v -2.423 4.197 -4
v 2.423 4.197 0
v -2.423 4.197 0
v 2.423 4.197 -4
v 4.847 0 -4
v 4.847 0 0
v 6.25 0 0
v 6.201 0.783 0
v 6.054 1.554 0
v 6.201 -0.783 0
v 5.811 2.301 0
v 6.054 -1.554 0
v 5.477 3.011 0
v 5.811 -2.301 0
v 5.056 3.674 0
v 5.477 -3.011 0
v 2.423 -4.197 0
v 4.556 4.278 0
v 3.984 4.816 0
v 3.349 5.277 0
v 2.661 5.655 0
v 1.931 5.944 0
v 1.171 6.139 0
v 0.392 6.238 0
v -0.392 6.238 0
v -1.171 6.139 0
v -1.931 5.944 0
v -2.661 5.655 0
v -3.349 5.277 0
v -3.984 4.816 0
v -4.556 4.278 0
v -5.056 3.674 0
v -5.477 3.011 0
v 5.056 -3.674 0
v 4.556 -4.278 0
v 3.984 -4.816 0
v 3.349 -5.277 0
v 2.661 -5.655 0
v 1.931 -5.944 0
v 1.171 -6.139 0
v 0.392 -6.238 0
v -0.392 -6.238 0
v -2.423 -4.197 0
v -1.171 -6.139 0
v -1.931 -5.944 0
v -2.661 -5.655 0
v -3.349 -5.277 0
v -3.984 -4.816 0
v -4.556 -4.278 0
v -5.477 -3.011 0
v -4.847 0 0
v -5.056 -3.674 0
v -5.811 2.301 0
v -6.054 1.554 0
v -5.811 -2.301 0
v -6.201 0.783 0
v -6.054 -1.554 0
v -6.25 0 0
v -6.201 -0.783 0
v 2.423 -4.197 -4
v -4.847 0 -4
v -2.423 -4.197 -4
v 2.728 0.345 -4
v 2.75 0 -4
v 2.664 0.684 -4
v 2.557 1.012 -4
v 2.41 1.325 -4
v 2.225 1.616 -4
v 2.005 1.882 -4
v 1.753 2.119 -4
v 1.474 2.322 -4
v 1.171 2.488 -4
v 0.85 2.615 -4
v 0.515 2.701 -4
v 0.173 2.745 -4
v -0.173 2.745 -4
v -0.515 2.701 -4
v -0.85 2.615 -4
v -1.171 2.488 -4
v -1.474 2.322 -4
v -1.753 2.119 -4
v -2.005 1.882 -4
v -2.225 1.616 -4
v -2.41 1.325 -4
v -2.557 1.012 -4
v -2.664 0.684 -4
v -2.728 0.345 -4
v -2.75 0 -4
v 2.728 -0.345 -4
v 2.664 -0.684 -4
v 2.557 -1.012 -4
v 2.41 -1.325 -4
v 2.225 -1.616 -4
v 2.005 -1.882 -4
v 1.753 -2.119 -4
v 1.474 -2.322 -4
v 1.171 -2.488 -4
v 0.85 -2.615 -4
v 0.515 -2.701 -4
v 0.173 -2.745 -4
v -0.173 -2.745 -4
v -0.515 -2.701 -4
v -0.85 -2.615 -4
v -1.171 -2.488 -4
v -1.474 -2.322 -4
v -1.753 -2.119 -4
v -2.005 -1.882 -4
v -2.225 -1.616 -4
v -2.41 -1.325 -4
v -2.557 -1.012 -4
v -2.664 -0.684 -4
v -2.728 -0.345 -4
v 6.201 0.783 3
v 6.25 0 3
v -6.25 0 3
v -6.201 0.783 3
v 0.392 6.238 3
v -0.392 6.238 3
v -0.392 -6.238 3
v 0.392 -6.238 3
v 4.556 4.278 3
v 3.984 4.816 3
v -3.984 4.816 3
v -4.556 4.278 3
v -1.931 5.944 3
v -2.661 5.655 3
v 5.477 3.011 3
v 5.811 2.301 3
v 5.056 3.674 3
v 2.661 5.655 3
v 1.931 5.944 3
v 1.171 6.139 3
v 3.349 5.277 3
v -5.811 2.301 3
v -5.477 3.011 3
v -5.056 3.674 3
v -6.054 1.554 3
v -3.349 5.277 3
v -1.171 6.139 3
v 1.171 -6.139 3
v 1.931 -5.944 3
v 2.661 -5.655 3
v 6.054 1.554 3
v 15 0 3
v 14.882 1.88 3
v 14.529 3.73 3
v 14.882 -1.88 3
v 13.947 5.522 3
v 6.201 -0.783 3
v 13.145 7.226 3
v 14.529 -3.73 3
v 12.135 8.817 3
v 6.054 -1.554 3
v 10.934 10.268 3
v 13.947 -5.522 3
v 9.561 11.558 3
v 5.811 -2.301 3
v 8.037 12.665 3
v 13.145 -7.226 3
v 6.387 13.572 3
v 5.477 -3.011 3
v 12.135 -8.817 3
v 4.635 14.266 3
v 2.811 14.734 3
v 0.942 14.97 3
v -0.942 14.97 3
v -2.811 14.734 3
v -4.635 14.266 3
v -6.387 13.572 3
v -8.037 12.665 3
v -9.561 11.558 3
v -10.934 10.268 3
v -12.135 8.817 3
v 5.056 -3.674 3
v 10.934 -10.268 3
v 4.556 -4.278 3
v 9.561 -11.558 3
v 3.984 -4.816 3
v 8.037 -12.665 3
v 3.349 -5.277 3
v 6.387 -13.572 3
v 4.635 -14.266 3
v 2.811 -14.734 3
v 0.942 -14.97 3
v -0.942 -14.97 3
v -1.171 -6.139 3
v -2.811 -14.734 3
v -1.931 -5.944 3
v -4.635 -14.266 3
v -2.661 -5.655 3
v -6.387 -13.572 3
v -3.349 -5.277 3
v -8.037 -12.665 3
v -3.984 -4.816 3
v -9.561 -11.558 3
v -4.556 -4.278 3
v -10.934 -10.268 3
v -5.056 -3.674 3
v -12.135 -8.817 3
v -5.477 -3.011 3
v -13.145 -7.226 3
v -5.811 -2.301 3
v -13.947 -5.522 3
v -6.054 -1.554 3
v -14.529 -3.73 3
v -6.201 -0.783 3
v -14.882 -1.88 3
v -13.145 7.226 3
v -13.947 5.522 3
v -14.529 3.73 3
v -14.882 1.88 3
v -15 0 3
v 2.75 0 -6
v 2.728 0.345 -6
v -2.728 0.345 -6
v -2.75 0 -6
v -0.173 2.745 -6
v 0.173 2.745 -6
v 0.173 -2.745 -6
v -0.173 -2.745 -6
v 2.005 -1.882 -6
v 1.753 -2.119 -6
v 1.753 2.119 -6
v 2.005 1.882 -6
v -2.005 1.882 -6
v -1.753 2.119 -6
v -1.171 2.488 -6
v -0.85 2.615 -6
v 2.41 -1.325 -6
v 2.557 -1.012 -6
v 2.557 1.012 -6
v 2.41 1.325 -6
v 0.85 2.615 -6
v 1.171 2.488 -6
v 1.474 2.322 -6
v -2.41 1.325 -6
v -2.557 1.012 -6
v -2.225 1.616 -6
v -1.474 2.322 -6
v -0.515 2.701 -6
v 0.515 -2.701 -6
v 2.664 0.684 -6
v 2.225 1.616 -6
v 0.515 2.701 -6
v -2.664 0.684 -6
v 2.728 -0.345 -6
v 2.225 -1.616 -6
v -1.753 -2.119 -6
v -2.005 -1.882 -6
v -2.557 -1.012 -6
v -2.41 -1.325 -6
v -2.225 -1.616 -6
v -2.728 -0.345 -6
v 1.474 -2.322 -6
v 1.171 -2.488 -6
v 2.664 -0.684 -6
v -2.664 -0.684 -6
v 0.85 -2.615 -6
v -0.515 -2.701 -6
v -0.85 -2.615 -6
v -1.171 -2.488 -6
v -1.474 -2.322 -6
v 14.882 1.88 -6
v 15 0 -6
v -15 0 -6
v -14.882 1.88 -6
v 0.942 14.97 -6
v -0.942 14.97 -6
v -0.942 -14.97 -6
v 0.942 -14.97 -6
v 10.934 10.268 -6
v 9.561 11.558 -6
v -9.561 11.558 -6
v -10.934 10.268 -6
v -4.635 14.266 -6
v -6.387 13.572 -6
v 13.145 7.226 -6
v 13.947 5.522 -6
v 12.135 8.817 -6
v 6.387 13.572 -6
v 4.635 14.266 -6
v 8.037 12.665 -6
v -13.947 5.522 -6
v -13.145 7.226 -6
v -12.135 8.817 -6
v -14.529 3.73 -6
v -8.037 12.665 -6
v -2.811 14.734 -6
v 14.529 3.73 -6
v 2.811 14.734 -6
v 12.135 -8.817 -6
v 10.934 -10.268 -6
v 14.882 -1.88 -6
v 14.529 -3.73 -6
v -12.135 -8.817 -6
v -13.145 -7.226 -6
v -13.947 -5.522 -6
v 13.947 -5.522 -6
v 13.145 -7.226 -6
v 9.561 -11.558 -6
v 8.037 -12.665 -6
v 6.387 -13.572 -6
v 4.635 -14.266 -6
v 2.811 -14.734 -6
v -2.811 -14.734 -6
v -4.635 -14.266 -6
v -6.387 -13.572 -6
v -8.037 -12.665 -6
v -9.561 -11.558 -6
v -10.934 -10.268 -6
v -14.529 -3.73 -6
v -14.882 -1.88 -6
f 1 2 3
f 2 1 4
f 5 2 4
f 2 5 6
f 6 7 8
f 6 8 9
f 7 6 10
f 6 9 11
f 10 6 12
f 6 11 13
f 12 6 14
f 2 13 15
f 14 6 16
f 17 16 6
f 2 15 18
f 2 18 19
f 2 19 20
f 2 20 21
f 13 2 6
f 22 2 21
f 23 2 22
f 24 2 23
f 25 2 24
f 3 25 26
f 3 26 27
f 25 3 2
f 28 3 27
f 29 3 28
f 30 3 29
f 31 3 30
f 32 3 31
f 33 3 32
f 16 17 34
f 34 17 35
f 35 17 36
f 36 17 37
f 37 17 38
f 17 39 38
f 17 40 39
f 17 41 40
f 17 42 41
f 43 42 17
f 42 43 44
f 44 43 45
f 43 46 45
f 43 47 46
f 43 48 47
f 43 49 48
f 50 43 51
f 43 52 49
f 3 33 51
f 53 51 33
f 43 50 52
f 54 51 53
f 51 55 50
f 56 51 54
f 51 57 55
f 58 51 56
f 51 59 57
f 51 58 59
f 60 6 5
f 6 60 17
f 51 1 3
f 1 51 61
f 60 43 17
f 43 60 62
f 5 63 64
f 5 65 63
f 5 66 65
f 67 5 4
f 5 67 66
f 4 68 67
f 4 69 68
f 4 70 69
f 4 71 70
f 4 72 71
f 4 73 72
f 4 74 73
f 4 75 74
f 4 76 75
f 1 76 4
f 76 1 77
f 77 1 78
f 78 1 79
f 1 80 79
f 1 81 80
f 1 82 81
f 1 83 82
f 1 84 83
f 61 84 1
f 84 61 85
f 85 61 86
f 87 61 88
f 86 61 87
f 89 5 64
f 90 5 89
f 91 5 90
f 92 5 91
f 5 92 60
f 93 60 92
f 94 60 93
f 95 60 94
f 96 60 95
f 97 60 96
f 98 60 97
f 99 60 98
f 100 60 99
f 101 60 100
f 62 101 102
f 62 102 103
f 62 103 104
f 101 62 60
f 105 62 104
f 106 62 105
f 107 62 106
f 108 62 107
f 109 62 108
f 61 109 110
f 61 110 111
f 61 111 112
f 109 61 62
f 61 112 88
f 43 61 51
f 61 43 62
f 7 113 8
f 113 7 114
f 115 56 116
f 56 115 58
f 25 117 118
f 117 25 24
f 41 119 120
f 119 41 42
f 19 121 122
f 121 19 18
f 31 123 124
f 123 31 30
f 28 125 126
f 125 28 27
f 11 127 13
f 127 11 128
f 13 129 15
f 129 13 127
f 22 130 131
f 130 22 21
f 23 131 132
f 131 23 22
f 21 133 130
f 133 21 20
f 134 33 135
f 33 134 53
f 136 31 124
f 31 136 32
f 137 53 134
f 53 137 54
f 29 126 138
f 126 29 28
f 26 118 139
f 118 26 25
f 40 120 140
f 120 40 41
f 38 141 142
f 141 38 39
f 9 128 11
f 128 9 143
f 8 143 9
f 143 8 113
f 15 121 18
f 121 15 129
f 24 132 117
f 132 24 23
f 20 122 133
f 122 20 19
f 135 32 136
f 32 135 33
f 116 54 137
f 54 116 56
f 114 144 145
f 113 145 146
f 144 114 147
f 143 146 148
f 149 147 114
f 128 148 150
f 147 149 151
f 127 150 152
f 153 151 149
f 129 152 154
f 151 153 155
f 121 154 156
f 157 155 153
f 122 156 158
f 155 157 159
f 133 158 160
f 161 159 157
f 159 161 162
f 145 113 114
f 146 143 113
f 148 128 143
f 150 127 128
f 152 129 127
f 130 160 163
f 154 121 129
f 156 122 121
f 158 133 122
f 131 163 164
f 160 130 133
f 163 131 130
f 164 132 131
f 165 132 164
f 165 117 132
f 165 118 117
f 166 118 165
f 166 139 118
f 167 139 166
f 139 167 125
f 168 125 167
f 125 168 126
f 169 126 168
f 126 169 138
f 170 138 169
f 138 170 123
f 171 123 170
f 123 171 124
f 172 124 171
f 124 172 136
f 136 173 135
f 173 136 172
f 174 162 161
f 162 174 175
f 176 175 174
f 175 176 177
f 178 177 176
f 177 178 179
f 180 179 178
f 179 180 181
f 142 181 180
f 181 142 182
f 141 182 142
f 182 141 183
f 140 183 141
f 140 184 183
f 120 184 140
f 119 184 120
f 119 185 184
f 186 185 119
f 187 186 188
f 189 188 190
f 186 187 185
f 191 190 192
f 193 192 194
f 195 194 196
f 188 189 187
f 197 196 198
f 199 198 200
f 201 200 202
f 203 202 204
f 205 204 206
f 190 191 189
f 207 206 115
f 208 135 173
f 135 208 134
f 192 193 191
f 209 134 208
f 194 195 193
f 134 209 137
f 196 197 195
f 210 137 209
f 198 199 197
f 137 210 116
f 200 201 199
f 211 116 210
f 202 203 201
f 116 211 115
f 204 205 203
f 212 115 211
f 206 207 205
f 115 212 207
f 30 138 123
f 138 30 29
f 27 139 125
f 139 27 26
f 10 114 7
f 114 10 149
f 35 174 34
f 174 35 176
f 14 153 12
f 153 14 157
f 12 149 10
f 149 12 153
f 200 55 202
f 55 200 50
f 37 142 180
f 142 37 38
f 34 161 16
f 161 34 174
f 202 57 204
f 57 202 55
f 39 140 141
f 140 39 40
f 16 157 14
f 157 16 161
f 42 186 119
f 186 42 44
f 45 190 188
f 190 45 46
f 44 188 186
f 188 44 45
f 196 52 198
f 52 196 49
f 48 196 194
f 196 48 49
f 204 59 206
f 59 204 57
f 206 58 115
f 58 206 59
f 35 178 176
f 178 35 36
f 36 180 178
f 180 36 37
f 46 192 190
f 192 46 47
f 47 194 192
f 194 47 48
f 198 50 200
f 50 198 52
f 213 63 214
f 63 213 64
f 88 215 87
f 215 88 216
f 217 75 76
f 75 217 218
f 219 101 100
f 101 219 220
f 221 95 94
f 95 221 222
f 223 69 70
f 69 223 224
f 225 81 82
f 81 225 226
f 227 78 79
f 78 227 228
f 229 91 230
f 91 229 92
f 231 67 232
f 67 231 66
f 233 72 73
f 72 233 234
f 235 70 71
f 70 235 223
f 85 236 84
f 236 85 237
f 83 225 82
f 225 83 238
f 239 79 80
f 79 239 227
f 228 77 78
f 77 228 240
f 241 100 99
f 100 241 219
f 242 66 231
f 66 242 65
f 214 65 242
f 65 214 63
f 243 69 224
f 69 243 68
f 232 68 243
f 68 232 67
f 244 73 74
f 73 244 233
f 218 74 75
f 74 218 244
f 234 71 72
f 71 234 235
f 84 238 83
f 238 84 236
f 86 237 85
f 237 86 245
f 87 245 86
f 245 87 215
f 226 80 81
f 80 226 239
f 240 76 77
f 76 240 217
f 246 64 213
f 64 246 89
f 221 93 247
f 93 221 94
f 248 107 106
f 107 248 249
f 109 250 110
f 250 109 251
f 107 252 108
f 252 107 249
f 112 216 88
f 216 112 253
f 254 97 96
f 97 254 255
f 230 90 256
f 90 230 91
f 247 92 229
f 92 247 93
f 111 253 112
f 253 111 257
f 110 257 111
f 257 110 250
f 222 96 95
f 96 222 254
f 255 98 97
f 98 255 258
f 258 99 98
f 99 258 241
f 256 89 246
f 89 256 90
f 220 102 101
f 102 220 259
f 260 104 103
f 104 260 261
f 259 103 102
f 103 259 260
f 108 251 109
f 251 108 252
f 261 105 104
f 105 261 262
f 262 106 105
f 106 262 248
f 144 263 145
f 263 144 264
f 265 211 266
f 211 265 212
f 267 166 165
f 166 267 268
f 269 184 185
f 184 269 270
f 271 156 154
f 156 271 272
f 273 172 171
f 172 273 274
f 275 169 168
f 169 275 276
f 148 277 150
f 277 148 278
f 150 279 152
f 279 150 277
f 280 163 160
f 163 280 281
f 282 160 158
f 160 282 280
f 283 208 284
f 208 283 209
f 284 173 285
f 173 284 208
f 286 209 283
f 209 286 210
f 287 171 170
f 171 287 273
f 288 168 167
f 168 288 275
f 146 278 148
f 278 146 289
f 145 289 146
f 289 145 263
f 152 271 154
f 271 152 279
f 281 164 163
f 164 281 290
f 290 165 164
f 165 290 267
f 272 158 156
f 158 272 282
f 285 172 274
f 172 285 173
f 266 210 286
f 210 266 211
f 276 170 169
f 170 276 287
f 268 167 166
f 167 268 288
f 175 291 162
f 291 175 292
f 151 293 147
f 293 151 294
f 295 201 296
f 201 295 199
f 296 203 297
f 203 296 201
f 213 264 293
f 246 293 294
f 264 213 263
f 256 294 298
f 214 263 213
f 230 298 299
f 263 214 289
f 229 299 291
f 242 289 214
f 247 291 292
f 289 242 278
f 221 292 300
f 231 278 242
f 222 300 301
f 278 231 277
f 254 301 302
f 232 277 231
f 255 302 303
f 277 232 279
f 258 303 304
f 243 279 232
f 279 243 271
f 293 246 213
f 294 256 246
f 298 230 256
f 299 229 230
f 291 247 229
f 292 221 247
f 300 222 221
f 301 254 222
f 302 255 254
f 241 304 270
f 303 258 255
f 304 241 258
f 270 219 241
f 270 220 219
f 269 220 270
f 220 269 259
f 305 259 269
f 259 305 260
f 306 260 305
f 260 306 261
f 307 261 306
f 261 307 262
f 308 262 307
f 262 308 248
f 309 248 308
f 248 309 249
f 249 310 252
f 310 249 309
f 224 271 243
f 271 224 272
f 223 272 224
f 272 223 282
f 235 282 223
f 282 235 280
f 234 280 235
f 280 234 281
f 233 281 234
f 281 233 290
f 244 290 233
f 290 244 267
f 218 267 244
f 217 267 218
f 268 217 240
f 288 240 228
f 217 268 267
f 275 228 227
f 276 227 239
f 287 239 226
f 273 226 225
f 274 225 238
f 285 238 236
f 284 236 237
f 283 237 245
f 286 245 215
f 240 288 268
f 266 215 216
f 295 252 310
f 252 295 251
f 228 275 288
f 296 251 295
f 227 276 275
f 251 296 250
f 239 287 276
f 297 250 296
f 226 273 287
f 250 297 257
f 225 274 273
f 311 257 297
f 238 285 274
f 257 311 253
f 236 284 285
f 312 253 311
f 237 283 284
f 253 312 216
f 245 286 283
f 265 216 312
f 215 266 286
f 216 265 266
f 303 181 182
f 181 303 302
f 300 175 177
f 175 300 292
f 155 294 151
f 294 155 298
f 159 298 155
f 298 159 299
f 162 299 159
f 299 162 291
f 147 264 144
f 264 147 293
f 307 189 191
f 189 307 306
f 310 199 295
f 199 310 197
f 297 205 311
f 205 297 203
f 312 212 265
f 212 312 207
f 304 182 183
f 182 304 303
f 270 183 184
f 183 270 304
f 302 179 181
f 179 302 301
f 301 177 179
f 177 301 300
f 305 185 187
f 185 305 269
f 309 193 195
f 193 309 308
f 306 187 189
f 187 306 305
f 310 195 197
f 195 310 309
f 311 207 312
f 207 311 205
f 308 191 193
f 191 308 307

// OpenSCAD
$fn = 50;


difference() {
	union() {
		translate(v = [0, 0, -6.0000000000]) {
			cylinder(h = 9.0000000000, r = 15.0000000000);
		}
	}
	union() {
		translate(v = [0, 0, 0]) {
			rotate(a = [0, 0, 0]) {
				difference() {
					union() {
						translate(v = [0, 0, -4]) {
							linear_extrude(height = 4) {
								polygon(points = [[4.8468000000, 0.0000000000], [2.4234000000, 4.1974519271], [-2.4234000000, 4.1974519271], [-4.8468000000, 0.0000000000], [-2.4234000000, -4.1974519271], [2.4234000000, -4.1974519271]]);
							}
						}
					}
					union();
				}
			}
		}
		#cylinder(h = 3, r = 6.2500000000);
		#translate(v = [0, 0, -100.0000000000]) {
			cylinder(h = 200, r = 2.7500000000);
		}
	}
}
